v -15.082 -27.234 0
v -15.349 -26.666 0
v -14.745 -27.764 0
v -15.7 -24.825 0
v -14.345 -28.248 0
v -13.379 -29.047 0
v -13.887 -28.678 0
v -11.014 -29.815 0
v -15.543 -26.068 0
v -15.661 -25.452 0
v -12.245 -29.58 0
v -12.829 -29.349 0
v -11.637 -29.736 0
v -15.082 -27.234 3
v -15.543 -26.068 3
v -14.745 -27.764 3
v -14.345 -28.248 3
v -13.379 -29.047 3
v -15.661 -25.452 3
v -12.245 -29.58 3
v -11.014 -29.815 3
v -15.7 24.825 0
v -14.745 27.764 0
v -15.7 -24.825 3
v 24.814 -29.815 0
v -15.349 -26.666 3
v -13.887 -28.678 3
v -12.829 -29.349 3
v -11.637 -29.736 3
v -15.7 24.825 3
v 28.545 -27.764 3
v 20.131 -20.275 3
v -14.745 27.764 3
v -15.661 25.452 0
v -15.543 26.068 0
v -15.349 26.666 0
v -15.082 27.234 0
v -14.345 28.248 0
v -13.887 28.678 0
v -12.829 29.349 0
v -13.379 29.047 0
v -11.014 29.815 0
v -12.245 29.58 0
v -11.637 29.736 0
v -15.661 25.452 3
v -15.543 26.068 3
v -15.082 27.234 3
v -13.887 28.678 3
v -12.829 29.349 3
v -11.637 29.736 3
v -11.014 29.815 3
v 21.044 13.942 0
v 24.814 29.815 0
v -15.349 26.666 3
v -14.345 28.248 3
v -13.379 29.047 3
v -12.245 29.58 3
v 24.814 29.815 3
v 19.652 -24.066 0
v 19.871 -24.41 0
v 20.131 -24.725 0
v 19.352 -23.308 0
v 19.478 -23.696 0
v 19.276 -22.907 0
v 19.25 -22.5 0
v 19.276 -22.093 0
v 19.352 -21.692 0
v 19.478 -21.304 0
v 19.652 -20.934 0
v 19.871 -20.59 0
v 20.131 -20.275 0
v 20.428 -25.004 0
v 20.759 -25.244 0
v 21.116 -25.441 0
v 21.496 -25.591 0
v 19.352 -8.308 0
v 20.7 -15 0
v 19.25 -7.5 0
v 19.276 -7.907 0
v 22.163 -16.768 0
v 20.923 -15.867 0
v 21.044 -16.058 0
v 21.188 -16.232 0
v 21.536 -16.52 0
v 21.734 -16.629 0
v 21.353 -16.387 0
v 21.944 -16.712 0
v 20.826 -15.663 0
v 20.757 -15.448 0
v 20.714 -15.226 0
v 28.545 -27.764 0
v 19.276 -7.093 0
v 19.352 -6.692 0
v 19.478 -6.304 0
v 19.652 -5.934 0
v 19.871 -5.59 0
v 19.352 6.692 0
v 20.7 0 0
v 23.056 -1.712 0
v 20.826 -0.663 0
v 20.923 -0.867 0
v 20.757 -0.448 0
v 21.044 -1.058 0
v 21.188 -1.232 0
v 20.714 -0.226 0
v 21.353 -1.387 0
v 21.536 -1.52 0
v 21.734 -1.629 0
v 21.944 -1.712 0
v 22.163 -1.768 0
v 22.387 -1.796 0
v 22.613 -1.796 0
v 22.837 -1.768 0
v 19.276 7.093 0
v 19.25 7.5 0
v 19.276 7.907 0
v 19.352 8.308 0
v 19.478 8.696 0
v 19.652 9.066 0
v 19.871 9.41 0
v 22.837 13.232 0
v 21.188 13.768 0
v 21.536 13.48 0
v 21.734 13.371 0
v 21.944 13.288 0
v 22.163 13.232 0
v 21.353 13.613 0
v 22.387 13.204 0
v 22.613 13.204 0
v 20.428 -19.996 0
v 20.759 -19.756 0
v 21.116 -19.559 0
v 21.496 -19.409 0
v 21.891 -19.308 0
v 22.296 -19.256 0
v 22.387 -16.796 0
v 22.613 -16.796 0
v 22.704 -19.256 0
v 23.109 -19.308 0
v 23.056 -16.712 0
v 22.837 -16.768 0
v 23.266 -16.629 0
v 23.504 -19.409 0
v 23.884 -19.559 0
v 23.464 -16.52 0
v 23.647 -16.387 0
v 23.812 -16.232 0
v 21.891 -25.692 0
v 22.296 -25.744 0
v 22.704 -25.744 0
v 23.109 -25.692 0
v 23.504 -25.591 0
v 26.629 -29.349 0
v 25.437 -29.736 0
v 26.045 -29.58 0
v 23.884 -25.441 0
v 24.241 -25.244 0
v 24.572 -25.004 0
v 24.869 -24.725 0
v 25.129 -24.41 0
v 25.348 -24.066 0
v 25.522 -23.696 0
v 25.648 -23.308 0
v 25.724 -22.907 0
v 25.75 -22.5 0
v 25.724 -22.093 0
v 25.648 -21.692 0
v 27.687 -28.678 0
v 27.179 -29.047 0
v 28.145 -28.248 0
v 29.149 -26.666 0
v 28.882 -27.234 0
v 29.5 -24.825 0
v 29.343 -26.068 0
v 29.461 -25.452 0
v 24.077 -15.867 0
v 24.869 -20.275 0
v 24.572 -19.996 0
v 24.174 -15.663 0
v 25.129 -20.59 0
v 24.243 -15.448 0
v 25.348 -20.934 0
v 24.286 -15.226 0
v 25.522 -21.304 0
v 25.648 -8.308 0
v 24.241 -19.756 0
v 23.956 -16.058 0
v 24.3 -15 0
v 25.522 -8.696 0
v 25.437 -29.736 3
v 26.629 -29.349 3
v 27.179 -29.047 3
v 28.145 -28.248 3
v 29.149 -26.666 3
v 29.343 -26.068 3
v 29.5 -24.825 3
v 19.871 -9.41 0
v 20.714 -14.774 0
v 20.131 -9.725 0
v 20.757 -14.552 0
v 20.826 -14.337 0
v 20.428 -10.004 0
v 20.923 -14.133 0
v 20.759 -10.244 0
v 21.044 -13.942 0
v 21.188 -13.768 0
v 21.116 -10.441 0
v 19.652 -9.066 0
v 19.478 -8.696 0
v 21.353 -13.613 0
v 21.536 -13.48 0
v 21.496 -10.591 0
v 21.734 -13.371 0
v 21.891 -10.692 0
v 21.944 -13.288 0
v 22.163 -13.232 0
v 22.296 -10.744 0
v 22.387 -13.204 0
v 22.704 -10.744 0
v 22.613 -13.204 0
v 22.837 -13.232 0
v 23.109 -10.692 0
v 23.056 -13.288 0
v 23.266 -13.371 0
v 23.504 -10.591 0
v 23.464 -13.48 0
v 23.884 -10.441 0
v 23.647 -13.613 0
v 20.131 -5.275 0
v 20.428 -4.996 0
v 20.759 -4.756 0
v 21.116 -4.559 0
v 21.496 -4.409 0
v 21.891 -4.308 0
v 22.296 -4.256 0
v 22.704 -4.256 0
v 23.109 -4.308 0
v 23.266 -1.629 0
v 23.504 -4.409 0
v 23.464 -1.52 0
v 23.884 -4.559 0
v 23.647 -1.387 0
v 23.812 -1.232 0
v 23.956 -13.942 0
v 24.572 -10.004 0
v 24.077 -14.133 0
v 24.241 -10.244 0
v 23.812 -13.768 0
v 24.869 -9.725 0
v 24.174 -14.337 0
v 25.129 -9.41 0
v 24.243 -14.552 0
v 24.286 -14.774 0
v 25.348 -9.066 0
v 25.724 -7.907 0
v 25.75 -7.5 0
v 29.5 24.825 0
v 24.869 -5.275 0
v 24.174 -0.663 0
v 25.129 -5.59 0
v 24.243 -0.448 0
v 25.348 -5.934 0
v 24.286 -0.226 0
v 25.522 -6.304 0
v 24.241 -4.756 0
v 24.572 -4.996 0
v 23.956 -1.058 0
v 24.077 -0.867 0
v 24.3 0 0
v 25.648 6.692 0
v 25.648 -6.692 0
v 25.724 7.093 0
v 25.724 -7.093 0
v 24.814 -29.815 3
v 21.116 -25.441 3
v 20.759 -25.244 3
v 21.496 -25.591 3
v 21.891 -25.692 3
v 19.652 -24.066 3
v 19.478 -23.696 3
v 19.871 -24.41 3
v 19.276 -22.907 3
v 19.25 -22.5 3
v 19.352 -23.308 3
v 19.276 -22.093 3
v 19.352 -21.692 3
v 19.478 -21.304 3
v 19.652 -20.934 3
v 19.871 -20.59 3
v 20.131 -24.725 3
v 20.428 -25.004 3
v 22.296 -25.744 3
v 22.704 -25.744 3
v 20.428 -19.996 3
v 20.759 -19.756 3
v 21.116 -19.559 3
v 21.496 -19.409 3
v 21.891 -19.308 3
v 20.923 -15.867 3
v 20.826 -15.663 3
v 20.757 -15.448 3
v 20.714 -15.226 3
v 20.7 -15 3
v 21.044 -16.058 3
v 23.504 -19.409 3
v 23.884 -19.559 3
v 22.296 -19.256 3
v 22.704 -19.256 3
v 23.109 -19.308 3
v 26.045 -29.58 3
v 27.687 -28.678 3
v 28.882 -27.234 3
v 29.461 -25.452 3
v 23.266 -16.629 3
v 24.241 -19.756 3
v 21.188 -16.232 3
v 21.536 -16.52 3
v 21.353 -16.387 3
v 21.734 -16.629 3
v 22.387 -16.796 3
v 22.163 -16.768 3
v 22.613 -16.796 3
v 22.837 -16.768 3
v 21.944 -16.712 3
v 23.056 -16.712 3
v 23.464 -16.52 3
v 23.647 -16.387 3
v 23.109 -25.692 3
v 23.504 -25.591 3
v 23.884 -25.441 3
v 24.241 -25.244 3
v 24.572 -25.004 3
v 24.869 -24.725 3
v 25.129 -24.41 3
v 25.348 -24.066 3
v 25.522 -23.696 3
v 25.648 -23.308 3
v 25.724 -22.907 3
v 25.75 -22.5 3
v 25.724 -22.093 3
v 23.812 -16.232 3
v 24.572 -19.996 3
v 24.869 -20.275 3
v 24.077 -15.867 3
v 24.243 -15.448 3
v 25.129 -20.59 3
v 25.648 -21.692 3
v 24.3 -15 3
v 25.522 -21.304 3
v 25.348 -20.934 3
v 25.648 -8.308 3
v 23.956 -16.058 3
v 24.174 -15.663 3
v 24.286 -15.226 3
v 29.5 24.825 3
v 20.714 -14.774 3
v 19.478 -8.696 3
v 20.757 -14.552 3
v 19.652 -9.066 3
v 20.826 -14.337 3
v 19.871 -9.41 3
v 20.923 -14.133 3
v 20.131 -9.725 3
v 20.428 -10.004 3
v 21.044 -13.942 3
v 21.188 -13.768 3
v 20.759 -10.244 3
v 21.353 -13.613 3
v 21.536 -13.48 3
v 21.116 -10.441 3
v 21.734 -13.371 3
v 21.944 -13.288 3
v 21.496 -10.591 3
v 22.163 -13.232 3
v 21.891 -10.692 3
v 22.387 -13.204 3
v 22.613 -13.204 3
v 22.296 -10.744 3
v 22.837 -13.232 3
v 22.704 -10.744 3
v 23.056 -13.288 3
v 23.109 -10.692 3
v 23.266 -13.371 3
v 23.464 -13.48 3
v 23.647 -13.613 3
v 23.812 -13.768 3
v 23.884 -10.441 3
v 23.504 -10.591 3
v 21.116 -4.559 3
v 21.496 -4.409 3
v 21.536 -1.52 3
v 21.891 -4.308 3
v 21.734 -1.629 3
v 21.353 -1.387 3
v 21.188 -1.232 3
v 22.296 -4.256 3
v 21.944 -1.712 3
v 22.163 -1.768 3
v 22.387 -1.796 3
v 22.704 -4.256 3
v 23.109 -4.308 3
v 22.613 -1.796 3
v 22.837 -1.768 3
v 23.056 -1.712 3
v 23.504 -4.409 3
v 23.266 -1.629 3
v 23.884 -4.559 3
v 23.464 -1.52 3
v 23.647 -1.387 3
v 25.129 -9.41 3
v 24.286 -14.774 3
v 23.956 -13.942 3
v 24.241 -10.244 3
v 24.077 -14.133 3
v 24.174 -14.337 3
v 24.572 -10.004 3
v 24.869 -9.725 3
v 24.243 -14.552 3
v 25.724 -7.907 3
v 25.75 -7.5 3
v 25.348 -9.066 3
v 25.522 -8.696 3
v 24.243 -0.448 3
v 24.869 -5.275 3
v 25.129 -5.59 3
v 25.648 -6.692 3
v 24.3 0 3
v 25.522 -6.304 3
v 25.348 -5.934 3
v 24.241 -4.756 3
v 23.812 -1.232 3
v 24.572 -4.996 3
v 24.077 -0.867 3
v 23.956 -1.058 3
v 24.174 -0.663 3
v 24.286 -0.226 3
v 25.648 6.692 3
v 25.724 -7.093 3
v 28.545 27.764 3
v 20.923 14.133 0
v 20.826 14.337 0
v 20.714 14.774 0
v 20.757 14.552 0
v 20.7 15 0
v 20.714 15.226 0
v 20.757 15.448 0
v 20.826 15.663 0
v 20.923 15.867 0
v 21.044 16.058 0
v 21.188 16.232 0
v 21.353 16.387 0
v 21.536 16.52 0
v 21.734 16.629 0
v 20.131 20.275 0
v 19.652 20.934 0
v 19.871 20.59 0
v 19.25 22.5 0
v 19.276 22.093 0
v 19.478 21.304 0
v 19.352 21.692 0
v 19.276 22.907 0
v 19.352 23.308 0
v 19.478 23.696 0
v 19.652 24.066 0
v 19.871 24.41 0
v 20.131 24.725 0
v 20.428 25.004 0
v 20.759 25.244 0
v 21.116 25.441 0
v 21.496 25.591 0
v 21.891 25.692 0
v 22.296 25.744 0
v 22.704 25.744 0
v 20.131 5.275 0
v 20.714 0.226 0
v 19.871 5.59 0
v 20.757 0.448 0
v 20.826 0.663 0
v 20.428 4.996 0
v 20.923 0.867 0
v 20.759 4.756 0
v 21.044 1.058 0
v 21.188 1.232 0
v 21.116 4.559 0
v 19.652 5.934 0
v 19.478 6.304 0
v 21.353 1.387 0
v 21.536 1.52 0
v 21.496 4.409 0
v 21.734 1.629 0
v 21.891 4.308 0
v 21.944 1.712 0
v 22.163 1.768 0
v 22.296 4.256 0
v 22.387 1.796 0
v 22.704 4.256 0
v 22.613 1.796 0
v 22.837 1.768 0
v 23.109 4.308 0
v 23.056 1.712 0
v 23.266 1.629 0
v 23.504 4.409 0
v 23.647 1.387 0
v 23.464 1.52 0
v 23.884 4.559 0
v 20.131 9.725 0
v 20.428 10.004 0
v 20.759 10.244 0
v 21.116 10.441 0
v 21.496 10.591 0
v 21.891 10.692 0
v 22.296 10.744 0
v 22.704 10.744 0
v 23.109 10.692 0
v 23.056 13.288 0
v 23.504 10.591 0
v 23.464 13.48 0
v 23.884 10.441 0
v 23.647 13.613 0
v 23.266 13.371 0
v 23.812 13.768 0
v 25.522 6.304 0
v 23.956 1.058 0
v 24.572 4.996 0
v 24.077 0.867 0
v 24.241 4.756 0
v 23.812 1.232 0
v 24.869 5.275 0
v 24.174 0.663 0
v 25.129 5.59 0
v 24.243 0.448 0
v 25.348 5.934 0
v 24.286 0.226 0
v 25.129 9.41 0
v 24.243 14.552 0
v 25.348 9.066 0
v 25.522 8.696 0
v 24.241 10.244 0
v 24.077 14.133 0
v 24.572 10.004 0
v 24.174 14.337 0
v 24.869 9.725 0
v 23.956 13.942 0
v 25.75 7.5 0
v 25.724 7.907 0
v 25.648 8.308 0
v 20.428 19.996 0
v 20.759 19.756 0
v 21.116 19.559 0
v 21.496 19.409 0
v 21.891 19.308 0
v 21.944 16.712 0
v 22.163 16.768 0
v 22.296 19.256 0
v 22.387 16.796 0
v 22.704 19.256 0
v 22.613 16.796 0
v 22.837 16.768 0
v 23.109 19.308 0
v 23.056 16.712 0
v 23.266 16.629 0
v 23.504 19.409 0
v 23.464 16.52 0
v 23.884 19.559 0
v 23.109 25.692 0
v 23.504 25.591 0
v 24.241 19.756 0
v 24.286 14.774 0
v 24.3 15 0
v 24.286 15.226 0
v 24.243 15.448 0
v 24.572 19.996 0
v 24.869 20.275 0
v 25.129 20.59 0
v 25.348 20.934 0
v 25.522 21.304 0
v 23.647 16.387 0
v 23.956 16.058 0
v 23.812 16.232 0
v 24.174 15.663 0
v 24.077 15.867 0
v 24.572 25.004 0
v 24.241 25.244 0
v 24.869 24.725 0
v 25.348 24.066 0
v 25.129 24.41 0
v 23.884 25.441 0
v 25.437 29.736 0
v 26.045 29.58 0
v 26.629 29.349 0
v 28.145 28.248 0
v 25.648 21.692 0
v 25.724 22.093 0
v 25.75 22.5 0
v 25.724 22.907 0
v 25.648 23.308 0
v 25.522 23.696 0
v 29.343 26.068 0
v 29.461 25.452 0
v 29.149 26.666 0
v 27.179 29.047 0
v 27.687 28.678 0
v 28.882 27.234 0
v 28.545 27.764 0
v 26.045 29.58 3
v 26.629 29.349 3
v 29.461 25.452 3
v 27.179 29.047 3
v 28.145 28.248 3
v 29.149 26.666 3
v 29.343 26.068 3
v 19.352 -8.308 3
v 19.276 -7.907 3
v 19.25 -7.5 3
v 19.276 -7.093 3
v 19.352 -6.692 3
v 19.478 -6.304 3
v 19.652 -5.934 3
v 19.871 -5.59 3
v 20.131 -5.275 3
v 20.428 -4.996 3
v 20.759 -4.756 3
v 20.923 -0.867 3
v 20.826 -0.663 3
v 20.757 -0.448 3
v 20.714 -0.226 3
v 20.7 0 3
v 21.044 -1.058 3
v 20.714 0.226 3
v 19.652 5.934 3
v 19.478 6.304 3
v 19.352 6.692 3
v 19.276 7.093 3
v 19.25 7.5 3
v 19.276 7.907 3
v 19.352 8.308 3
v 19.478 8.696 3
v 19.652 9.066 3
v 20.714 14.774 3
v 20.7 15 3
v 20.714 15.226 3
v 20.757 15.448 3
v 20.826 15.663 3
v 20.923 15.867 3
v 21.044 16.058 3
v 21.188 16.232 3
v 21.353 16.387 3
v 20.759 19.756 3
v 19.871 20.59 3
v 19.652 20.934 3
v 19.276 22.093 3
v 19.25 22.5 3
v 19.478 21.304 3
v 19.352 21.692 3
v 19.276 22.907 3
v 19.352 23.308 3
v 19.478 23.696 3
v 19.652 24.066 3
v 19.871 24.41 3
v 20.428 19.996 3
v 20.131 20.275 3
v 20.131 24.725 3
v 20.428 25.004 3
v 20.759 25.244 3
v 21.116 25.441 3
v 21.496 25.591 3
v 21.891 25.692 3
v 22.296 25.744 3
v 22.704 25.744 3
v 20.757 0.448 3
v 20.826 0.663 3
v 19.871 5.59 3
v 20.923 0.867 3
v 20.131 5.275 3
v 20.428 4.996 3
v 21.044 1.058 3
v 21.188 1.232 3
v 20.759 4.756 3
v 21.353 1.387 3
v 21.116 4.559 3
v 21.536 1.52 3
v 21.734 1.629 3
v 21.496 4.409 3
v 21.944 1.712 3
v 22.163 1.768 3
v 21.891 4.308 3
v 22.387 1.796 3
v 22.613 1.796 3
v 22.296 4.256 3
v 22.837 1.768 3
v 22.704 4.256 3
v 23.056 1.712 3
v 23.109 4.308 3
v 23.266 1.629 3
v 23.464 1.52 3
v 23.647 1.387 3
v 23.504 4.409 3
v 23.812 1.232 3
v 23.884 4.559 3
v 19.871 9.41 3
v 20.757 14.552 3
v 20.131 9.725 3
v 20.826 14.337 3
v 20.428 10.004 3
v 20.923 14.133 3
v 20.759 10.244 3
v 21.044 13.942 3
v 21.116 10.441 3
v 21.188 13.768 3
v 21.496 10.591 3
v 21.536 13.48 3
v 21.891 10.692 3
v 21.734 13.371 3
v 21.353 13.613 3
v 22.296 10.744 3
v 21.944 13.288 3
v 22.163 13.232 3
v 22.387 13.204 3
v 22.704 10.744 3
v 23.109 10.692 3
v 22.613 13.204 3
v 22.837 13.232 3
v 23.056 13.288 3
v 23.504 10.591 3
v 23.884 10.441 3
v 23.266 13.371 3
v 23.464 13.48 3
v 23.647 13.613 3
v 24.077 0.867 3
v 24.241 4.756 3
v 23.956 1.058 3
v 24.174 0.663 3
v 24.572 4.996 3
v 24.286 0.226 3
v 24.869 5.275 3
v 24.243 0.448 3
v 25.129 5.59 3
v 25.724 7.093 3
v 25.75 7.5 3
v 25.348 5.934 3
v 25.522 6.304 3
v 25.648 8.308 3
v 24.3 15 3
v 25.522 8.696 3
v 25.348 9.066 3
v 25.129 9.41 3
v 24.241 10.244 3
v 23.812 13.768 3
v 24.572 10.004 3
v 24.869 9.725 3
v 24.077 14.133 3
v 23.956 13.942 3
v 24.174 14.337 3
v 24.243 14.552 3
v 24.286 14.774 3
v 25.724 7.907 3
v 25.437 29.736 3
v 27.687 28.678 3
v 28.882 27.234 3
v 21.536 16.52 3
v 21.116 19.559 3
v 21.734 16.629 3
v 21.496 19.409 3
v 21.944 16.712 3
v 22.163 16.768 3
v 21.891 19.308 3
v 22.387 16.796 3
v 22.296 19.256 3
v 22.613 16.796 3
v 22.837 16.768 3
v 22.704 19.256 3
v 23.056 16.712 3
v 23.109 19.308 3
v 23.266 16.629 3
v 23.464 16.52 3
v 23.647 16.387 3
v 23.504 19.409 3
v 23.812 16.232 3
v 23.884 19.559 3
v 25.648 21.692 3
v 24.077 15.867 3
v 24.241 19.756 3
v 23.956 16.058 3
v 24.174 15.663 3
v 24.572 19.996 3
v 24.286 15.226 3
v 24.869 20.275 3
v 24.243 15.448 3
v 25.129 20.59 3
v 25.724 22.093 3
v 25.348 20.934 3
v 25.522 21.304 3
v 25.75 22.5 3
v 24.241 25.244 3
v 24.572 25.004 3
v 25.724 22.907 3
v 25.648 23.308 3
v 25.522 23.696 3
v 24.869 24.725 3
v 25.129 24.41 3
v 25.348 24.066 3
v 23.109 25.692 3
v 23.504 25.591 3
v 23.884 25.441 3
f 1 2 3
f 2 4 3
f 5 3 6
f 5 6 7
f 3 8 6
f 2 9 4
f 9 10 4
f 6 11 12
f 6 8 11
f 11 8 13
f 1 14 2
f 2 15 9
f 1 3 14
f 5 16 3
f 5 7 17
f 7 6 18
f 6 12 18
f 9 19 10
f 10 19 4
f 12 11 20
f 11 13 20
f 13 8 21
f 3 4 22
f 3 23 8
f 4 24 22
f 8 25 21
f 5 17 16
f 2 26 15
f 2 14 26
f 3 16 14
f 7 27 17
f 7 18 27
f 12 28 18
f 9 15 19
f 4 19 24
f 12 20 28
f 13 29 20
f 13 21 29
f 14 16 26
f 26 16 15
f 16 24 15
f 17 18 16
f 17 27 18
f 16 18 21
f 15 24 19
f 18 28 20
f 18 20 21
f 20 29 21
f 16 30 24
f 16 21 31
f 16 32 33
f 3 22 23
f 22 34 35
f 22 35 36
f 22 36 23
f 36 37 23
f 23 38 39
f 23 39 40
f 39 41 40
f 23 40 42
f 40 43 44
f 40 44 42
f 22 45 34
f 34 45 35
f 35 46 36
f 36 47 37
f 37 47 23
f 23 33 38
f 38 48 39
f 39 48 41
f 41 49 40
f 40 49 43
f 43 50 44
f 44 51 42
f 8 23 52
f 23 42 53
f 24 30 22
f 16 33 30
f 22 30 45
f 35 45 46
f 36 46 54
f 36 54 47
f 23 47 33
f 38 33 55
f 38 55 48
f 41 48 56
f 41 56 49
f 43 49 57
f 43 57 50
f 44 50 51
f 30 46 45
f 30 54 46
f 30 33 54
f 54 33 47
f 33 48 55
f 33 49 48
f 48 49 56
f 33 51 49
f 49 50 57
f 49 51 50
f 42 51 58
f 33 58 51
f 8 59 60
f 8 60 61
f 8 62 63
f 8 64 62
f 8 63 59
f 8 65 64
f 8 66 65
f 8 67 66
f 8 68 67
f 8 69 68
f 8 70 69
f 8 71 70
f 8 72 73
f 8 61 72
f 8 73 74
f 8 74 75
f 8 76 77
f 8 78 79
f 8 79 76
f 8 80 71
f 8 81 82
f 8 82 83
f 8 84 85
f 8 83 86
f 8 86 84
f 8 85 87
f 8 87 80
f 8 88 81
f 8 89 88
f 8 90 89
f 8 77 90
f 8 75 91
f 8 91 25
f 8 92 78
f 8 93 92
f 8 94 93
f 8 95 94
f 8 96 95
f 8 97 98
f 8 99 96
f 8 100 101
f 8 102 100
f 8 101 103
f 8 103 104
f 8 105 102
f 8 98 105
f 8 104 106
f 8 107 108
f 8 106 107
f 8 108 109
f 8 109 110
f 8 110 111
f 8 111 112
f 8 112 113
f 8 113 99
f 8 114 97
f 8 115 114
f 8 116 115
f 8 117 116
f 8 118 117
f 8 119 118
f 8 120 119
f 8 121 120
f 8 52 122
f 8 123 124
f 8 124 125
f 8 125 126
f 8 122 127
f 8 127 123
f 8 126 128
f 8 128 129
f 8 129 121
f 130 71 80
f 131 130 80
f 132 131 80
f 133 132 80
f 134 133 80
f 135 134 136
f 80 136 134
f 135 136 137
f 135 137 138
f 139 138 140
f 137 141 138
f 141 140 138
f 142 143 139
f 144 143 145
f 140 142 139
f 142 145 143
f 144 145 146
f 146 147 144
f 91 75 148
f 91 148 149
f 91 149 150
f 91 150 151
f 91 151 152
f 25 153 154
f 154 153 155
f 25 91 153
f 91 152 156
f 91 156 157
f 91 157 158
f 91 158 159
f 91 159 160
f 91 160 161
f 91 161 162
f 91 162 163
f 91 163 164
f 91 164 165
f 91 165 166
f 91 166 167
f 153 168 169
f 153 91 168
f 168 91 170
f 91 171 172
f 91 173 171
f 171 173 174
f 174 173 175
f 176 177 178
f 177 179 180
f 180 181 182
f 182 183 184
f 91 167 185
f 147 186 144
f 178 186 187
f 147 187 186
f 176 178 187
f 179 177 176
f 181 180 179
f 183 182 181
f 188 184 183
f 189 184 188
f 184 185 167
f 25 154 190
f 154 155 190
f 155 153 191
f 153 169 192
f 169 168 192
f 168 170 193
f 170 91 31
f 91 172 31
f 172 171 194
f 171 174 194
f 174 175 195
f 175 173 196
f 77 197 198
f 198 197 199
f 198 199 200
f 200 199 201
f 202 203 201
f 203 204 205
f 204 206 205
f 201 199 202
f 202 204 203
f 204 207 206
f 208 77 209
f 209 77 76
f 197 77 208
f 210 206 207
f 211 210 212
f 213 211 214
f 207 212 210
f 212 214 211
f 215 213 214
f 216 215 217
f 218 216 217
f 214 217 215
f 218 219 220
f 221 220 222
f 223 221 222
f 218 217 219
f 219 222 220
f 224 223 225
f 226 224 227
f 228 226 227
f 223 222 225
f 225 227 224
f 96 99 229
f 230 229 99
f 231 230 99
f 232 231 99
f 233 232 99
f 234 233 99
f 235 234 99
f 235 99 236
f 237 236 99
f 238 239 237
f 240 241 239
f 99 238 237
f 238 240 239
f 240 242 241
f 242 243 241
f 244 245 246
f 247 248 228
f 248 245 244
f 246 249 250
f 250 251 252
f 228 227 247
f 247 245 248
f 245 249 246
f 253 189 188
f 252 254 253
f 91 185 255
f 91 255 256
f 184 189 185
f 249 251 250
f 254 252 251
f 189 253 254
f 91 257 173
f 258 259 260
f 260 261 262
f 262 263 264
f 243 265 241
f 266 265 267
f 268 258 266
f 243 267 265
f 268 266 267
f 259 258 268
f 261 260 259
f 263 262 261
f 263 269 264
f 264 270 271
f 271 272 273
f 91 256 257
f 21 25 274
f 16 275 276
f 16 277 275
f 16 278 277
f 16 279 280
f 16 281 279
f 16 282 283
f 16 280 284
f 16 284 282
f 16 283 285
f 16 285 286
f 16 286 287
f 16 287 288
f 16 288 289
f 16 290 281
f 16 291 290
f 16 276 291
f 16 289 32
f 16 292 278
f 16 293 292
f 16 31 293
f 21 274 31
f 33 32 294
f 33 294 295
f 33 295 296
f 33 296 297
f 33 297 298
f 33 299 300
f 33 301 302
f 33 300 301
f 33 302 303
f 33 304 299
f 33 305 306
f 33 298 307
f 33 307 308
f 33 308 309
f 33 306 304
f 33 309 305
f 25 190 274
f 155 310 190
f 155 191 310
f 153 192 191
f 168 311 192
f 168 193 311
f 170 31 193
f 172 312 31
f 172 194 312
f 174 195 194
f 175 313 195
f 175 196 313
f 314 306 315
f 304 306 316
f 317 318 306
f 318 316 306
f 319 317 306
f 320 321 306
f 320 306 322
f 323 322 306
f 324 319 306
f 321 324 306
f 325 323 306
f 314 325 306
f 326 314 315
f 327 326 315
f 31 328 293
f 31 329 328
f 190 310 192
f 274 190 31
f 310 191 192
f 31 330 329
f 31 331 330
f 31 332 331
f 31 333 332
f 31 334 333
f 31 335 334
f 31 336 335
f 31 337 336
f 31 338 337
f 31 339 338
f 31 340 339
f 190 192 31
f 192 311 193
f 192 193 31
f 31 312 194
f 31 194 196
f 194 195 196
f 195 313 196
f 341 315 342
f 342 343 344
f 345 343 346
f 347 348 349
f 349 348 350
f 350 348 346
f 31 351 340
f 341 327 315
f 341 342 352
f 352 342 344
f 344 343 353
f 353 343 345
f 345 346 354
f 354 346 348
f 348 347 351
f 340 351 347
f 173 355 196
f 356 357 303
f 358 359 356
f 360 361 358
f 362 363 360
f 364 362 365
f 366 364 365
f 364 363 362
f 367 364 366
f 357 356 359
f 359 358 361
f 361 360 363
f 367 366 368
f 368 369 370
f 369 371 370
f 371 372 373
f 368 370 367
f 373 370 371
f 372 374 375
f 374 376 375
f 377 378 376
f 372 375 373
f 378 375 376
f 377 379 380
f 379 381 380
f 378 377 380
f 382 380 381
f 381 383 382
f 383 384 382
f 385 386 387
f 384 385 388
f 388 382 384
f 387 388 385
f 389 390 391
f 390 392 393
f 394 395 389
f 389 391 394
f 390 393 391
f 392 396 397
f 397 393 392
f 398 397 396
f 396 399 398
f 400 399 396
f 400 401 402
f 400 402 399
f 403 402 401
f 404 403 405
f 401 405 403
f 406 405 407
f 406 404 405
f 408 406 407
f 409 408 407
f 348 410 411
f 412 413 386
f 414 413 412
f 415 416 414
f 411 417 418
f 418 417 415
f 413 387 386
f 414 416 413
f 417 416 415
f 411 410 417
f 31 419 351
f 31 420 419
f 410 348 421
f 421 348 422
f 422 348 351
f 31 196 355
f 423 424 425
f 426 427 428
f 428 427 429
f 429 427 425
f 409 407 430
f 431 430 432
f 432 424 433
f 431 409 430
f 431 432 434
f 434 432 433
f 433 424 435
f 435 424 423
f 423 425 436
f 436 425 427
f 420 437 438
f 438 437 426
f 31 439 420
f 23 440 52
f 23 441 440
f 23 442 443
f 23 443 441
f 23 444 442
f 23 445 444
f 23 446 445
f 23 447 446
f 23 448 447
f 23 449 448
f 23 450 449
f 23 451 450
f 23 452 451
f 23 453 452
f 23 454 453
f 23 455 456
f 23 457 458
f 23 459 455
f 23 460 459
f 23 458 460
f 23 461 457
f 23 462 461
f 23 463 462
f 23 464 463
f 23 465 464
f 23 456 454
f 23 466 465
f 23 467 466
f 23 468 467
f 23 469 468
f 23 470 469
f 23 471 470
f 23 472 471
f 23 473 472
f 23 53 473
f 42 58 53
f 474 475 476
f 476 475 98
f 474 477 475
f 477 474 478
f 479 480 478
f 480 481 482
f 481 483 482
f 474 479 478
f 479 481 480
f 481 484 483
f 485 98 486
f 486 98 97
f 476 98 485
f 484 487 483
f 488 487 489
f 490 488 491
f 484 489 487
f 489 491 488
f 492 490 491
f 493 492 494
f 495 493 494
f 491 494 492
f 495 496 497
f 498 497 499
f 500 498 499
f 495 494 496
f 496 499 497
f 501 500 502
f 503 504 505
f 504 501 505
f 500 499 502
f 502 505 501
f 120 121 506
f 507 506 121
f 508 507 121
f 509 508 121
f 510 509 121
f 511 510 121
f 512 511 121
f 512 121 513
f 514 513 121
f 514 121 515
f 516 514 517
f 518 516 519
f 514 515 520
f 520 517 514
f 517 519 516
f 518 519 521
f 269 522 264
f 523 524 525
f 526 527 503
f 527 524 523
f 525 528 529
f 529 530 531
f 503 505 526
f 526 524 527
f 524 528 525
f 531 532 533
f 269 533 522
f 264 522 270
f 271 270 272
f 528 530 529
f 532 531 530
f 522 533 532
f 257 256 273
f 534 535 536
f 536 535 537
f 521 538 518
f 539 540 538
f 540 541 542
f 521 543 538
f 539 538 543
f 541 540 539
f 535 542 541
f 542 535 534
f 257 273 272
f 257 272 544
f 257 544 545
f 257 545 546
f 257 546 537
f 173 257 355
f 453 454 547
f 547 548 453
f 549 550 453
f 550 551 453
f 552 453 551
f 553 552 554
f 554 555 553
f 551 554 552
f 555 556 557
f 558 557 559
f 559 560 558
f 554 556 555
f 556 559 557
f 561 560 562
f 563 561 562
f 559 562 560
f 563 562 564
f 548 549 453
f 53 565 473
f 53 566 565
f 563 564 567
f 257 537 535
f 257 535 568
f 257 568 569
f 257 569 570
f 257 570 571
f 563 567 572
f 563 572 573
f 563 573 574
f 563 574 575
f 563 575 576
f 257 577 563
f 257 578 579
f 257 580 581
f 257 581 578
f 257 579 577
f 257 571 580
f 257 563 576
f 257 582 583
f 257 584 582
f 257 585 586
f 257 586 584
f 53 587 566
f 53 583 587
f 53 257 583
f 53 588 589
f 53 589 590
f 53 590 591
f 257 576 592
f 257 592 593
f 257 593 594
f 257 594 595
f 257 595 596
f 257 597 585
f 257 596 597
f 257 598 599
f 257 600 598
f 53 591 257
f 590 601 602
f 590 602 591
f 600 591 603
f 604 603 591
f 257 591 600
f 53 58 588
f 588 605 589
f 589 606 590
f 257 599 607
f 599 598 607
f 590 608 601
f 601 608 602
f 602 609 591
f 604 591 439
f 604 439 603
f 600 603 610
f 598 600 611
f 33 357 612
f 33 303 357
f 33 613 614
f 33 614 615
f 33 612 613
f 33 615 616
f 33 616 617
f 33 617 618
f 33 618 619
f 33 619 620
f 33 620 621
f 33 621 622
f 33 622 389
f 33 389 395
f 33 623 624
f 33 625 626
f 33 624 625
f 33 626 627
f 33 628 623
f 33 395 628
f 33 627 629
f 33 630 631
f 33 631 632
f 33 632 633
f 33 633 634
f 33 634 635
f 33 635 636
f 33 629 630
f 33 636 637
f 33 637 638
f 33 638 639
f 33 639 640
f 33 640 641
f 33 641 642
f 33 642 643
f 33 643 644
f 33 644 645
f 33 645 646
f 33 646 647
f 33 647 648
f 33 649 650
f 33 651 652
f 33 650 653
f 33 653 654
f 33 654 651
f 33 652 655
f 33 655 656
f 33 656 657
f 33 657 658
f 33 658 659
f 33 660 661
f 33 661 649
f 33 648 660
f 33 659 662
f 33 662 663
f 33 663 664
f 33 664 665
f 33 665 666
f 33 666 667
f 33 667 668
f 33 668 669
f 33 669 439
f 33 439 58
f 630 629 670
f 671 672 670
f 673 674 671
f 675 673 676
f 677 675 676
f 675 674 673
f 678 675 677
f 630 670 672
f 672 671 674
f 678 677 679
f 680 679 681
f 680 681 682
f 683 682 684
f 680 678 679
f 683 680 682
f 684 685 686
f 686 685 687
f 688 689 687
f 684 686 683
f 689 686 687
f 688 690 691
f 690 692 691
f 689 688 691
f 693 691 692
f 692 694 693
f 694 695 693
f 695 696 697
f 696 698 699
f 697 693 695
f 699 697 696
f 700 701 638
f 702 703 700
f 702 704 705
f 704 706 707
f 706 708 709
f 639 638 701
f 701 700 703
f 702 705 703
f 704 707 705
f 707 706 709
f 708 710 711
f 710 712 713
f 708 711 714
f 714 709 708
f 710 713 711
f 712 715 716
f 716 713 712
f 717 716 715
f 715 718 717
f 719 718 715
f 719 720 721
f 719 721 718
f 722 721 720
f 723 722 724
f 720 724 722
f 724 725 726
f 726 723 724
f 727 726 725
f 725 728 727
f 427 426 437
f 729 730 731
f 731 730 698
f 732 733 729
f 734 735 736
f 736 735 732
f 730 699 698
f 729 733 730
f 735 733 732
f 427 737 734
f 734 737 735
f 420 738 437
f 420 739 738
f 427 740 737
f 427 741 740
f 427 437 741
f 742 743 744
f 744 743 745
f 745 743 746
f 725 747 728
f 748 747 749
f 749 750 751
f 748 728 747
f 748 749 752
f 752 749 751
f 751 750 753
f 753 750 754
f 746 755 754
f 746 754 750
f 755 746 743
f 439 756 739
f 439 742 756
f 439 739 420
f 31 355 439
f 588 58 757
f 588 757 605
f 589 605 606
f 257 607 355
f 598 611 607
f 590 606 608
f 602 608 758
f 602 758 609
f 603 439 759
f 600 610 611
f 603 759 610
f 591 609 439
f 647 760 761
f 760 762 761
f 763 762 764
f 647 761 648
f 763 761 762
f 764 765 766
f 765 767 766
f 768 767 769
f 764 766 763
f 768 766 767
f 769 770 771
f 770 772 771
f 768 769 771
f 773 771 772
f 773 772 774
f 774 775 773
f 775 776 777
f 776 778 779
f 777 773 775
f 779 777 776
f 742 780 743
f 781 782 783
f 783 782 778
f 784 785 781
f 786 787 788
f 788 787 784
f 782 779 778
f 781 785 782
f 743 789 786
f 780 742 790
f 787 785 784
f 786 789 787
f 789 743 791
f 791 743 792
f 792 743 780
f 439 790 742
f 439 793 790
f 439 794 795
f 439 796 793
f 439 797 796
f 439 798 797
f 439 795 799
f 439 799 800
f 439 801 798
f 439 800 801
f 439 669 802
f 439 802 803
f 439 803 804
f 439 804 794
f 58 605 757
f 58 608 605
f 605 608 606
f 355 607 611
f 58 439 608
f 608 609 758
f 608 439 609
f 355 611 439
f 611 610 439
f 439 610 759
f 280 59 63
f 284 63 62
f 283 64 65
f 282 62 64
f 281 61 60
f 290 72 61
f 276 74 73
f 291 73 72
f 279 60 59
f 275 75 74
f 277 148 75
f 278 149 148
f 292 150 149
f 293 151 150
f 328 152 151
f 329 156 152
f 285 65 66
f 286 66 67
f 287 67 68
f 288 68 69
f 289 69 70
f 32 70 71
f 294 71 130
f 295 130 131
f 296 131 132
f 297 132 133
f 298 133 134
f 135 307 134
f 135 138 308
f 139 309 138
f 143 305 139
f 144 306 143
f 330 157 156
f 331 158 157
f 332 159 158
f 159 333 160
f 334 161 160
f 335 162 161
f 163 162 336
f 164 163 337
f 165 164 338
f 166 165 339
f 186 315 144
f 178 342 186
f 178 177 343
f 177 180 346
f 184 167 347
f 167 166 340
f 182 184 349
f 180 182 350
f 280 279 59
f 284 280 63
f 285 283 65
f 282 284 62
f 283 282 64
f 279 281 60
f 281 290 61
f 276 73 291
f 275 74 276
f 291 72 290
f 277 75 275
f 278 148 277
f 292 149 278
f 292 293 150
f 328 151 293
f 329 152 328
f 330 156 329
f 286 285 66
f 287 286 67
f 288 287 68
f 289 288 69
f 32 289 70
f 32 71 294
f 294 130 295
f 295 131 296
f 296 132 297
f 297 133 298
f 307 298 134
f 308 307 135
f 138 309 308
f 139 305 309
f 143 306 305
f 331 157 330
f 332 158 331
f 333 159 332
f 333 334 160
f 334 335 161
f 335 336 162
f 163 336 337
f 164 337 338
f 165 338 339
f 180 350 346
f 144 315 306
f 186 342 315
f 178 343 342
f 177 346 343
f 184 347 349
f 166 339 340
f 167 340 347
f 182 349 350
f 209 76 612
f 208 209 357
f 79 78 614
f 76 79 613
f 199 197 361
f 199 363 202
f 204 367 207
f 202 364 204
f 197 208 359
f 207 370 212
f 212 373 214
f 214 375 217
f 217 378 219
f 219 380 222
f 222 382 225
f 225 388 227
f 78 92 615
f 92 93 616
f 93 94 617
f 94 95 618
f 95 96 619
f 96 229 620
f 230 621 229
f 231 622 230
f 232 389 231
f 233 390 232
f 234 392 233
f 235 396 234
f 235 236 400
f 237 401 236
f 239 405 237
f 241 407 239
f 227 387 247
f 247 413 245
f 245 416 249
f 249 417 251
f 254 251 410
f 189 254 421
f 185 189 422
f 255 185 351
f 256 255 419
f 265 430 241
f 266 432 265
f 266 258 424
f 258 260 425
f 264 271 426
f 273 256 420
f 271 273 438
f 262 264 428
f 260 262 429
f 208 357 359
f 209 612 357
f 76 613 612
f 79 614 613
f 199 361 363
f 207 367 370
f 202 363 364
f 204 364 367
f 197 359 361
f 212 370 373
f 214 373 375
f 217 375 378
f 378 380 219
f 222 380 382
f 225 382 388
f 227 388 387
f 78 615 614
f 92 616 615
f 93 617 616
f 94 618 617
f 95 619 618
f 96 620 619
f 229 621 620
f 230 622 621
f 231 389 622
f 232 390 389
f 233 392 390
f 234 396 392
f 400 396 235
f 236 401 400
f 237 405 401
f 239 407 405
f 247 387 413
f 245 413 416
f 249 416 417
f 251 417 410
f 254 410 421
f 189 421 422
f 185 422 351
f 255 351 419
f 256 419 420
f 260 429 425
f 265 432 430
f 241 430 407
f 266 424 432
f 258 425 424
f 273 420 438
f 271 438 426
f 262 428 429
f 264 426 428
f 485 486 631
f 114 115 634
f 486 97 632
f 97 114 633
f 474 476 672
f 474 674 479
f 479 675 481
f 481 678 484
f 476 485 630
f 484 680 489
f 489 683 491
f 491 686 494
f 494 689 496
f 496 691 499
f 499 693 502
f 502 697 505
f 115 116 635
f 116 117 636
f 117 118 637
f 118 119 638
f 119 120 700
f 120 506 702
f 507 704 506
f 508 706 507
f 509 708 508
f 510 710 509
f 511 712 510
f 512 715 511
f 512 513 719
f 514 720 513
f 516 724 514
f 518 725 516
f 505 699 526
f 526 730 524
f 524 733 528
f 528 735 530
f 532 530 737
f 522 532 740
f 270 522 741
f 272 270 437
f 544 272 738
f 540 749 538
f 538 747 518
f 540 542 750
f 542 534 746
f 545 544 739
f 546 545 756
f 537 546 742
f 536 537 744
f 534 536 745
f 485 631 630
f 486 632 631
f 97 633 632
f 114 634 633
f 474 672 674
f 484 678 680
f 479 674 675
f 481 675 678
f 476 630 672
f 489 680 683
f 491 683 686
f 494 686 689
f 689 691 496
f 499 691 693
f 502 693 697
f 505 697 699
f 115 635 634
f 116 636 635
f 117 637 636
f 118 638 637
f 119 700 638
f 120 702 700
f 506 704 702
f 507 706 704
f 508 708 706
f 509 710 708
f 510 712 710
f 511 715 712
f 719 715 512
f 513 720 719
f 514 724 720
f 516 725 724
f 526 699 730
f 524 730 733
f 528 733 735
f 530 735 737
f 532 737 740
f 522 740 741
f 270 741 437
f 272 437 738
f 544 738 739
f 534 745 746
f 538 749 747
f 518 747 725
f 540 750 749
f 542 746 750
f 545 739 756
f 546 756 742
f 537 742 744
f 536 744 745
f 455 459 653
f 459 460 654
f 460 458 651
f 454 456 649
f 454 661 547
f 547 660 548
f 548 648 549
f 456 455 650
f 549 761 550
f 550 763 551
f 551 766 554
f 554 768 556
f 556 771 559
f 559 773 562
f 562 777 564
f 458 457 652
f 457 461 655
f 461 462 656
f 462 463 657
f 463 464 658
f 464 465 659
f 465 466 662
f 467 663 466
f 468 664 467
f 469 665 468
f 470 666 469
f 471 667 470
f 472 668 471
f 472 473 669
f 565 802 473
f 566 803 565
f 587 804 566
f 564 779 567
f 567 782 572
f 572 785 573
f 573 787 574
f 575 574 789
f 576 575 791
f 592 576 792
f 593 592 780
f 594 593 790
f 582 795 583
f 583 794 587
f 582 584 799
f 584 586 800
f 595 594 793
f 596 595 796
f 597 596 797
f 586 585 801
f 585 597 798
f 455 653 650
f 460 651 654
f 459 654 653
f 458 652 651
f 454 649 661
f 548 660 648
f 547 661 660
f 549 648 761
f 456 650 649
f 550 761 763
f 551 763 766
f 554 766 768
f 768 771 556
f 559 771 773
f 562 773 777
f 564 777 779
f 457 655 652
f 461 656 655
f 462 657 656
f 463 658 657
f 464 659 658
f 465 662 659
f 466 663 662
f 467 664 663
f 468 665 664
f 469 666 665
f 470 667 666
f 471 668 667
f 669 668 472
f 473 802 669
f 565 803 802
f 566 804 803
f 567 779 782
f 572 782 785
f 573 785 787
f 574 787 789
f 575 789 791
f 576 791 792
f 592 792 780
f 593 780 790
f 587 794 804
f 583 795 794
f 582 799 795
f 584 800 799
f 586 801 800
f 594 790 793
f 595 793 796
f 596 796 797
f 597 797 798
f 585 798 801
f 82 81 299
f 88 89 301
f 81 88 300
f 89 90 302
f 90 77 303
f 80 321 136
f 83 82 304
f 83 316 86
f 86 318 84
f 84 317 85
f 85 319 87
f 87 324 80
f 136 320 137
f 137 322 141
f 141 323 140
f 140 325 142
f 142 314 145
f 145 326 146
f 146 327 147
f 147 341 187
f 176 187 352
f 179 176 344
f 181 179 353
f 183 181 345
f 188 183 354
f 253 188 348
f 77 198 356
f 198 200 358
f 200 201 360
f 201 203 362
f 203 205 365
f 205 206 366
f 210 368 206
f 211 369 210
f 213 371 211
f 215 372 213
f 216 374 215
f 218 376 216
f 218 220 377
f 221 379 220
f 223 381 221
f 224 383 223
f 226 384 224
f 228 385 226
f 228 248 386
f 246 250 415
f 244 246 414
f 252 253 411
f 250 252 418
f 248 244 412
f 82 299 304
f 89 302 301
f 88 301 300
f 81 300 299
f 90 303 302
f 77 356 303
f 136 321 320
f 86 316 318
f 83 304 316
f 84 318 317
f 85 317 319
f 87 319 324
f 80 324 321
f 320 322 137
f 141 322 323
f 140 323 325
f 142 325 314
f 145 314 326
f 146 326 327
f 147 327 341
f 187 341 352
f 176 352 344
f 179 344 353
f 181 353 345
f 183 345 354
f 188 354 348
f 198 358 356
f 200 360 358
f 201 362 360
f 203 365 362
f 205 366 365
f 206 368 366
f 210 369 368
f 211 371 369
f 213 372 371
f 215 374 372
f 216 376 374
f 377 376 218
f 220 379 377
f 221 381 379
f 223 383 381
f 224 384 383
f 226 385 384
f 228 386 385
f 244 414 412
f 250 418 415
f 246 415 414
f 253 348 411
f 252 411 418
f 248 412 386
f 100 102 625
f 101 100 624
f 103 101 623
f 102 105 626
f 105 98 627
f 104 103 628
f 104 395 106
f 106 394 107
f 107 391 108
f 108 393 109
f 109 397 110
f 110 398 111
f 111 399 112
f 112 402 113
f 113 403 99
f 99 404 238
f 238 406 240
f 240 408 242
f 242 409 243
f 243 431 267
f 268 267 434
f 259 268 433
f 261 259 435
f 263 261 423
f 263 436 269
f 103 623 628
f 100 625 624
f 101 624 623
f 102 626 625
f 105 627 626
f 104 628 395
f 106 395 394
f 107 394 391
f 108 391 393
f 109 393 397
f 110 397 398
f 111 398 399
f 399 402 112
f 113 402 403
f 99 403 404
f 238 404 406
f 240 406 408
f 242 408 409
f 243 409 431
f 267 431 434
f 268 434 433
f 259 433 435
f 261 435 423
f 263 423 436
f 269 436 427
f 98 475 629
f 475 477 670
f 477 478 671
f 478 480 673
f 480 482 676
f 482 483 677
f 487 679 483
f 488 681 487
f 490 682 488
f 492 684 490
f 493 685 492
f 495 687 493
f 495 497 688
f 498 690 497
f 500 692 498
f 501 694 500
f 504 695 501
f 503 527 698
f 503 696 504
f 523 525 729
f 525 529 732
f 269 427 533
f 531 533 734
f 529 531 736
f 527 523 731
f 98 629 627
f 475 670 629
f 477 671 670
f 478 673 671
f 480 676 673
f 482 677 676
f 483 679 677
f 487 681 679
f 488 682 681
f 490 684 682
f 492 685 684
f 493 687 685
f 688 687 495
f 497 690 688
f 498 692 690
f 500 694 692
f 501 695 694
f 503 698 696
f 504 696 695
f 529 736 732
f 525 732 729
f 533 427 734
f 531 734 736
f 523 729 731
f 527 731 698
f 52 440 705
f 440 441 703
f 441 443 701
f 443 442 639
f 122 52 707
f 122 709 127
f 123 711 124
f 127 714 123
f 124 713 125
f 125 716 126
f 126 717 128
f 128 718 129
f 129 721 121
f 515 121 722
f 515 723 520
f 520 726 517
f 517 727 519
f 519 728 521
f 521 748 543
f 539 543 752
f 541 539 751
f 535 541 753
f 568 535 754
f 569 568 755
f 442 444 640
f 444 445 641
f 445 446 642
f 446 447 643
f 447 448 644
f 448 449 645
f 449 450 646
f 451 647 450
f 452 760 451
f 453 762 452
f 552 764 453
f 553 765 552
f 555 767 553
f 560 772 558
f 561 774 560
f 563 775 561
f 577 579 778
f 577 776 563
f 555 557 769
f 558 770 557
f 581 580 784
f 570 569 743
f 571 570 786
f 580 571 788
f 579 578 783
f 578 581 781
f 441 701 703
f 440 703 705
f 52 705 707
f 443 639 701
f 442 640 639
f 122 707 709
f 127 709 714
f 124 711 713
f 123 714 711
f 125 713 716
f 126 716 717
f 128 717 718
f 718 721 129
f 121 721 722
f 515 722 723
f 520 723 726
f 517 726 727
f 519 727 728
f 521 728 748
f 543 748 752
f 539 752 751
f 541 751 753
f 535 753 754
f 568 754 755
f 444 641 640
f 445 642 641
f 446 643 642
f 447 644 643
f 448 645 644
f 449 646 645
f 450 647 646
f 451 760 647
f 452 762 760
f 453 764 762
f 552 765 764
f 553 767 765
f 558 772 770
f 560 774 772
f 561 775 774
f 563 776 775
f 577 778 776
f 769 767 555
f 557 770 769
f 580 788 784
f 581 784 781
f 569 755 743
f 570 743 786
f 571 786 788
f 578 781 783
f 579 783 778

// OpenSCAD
$fn = 50;

difference() {
	union() {
		translate(v = [6.9, 0.0, 0]) {
			hull() {
				translate(v = [-17.6, 24.824999999999996, 0]) {
					cylinder(h = 3, r = 5);
				}
				translate(v = [17.6, 24.824999999999996, 0]) {
					cylinder(h = 3, r = 5);
				}
				translate(v = [-17.6, -24.824999999999996, 0]) {
					cylinder(h = 3, r = 5);
				}
				translate(v = [17.6, -24.824999999999996, 0]) {
					cylinder(h = 3, r = 5);
				}
			}
		}
	}
	union() {
		translate(v = [22.5, -22.5, -1]) {
			cylinder(h = 5, r = 3.25);
		}
		translate(v = [22.5, -7.5, -1]) {
			cylinder(h = 5, r = 3.25);
		}
		translate(v = [22.5, 7.5, -1]) {
			cylinder(h = 5, r = 3.25);
		}
		translate(v = [22.5, 22.5, -1]) {
			cylinder(h = 5, r = 3.25);
		}
		translate(v = [22.5, -15.0, -1]) {
			cylinder(h = 5, r = 1.8);
		}
		translate(v = [22.5, 0.0, -1]) {
			cylinder(h = 5, r = 1.8);
		}
		translate(v = [22.5, 15.0, -1]) {
			cylinder(h = 5, r = 1.8);
		}
	}
}
